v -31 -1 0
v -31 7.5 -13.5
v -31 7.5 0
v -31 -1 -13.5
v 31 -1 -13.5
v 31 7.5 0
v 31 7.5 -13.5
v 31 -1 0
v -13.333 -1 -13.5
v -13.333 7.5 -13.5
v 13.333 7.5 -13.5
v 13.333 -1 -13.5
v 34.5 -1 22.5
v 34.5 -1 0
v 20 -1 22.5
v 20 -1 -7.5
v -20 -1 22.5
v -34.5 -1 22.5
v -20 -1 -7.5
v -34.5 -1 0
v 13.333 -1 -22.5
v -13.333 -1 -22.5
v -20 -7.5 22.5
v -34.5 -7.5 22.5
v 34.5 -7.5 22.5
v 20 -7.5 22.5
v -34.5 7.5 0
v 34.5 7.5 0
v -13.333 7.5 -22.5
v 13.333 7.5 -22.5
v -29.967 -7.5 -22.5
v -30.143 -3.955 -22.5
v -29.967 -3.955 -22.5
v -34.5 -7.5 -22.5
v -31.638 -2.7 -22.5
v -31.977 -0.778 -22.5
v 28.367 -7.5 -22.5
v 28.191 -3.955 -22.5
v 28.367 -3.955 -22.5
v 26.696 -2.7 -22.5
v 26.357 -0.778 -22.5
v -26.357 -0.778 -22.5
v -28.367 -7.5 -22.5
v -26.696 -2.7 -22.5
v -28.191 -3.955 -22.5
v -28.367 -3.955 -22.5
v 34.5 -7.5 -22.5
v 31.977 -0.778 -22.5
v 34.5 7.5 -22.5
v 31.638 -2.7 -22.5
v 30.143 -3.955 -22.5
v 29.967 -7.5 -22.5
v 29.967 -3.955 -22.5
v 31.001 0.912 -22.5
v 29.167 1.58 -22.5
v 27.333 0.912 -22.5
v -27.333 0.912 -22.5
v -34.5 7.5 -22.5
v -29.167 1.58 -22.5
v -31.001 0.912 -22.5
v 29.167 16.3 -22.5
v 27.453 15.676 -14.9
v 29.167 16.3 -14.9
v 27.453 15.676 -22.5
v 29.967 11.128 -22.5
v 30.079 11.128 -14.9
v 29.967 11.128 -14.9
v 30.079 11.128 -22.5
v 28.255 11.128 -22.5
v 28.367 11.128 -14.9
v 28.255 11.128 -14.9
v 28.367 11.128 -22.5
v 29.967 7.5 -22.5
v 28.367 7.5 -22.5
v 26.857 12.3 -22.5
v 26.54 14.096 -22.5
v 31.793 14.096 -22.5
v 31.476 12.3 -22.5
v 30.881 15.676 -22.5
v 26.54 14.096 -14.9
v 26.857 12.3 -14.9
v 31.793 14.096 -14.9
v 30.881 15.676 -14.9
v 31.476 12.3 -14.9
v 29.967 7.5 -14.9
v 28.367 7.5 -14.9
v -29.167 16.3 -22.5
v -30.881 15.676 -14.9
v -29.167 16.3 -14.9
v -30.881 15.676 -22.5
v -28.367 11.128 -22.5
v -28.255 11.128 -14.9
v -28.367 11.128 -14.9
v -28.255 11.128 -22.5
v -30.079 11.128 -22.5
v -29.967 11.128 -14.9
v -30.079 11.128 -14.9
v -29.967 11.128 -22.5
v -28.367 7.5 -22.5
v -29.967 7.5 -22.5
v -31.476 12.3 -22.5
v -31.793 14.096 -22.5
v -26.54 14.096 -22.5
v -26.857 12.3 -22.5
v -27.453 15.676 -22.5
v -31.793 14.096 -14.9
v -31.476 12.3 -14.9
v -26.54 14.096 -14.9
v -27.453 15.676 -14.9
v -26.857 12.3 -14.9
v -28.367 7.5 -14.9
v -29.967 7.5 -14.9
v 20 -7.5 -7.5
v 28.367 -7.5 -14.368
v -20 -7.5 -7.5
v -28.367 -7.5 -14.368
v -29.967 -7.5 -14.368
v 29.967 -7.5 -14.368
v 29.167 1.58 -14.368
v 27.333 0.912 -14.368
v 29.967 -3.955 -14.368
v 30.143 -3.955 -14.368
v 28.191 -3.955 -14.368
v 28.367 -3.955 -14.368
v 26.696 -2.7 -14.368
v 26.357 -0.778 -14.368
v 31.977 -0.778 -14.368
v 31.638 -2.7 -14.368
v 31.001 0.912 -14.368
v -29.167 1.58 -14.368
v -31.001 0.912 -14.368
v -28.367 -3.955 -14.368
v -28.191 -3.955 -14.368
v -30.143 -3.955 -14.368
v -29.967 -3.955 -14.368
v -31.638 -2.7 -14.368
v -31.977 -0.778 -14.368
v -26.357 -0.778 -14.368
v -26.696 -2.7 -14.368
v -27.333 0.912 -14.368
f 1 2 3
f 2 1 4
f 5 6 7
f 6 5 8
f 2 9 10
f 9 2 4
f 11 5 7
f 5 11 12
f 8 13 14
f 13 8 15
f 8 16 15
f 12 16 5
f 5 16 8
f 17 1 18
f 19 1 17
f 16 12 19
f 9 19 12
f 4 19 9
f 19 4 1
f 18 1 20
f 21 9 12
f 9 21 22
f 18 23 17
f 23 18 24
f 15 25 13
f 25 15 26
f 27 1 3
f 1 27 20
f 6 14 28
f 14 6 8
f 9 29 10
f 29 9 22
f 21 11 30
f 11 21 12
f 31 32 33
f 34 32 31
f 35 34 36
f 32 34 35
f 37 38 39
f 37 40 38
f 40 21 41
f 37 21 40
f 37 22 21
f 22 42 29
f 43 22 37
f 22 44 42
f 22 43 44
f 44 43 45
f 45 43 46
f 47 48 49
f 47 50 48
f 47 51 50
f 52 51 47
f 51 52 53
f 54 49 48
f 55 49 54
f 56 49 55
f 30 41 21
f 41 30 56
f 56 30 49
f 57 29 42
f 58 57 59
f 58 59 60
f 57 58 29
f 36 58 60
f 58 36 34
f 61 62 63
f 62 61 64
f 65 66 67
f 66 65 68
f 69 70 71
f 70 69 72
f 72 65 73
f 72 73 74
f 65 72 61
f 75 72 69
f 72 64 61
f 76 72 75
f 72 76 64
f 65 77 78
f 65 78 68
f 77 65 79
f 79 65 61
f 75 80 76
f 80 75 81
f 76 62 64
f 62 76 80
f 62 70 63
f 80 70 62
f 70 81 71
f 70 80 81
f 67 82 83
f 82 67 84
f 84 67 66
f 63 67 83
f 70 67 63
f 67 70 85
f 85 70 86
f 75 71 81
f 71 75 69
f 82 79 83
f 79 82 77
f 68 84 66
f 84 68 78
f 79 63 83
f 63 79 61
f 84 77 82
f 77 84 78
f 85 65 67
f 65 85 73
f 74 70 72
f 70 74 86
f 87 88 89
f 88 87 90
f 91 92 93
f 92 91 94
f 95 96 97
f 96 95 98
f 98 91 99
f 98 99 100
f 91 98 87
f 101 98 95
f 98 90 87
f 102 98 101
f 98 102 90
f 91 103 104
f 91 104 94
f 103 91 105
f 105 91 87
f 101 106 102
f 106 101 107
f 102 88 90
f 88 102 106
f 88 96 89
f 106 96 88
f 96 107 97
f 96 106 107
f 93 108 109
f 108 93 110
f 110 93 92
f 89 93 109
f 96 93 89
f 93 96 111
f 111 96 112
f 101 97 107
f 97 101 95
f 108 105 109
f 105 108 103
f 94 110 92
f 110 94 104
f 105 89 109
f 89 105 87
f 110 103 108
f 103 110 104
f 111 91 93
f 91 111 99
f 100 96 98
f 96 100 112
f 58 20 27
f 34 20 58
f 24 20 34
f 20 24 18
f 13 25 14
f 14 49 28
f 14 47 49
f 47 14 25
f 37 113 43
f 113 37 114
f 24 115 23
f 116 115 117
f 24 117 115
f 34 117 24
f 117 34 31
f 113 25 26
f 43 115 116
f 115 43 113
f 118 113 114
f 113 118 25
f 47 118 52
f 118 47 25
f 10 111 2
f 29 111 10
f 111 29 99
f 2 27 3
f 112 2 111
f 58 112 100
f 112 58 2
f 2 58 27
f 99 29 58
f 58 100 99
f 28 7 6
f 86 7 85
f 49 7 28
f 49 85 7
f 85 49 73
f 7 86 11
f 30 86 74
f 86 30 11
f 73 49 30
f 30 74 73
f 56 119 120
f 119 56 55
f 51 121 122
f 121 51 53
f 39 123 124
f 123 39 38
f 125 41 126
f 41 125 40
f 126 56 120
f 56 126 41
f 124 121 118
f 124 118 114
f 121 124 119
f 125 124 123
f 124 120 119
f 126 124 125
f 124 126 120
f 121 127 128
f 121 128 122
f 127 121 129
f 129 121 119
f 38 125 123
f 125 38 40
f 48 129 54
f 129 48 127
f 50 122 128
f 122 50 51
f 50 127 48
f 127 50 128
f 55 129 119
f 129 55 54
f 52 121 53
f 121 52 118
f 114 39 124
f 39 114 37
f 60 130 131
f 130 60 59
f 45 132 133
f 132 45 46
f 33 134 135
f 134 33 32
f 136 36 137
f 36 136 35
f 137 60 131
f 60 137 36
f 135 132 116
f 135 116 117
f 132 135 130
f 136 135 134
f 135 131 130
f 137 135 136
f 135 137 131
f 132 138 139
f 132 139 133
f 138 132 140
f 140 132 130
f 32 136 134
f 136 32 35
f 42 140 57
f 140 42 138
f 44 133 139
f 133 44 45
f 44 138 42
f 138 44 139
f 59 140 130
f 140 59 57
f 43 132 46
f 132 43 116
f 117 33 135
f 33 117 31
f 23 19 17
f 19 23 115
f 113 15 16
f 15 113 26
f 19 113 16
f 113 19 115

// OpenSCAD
difference () {
  difference () {
    difference () {
      union () {
        cube ([69, 15, 45], center=true);
        union () {
          translate ([175/6, 15/2, 0]) {
            rotate ([0.0,0.0,90.0]) {
              translate ([44/15, 0, -18.7]) {
                union () {
                  translate ([16/5, 0, 0]) {
                    cylinder (h=7.6, r=8/3, center=true);
                  }
                  cube ([31/5, 8/5, 7.6], center=true);
                }
              }
            }
          }
          translate ([-175/6, 15/2, 0]) {
            rotate ([0.0,0.0,90.0]) {
              translate ([44/15, 0, -18.7]) {
                union () {
                  translate ([16/5, 0, 0]) {
                    cylinder (h=7.6, r=8/3, center=true);
                  }
                  cube ([31/5, 8/5, 7.6], center=true);
                }
              }
            }
          }
        }
      }
      translate ([0, -15, -1.0E-4]) {
        union () {
          translate ([175/6, 15/2, 0]) {
            rotate ([0.0,0.0,90.0]) {
              translate ([3.0266666666666673, 0, -18.434]) {
                union () {
                  translate ([16/5, 0, 0]) {
                    cylinder (h=8.132, r=2.853333333333334, center=true);
                  }
                  cube ([6.634, 8/5, 8.132], center=true);
                }
              }
            }
          }
          translate ([-175/6, 15/2, 0]) {
            rotate ([0.0,0.0,90.0]) {
              translate ([3.0266666666666673, 0, -18.434]) {
                union () {
                  translate ([16/5, 0, 0]) {
                    cylinder (h=8.132, r=2.853333333333334, center=true);
                  }
                  cube ([6.634, 8/5, 8.132], center=true);
                }
              }
            }
          }
        }
      }
    }
    union () {
      union () {
        translate ([0, 7/2, 69/2]) {
          cube ([62, 9, 96], center=true);
        }
        translate ([0, 7/2, 45/4]) {
          cube ([70, 9, 45/2], center=true);
        }
      }
      translate ([0, 7/2, 0]) {
        cube ([80/3, 9, 45], center=true);
      }
    }
  }
  translate ([0, 0, 45/2]) {
    cube ([40, 69, 60], center=true);
  }
}
